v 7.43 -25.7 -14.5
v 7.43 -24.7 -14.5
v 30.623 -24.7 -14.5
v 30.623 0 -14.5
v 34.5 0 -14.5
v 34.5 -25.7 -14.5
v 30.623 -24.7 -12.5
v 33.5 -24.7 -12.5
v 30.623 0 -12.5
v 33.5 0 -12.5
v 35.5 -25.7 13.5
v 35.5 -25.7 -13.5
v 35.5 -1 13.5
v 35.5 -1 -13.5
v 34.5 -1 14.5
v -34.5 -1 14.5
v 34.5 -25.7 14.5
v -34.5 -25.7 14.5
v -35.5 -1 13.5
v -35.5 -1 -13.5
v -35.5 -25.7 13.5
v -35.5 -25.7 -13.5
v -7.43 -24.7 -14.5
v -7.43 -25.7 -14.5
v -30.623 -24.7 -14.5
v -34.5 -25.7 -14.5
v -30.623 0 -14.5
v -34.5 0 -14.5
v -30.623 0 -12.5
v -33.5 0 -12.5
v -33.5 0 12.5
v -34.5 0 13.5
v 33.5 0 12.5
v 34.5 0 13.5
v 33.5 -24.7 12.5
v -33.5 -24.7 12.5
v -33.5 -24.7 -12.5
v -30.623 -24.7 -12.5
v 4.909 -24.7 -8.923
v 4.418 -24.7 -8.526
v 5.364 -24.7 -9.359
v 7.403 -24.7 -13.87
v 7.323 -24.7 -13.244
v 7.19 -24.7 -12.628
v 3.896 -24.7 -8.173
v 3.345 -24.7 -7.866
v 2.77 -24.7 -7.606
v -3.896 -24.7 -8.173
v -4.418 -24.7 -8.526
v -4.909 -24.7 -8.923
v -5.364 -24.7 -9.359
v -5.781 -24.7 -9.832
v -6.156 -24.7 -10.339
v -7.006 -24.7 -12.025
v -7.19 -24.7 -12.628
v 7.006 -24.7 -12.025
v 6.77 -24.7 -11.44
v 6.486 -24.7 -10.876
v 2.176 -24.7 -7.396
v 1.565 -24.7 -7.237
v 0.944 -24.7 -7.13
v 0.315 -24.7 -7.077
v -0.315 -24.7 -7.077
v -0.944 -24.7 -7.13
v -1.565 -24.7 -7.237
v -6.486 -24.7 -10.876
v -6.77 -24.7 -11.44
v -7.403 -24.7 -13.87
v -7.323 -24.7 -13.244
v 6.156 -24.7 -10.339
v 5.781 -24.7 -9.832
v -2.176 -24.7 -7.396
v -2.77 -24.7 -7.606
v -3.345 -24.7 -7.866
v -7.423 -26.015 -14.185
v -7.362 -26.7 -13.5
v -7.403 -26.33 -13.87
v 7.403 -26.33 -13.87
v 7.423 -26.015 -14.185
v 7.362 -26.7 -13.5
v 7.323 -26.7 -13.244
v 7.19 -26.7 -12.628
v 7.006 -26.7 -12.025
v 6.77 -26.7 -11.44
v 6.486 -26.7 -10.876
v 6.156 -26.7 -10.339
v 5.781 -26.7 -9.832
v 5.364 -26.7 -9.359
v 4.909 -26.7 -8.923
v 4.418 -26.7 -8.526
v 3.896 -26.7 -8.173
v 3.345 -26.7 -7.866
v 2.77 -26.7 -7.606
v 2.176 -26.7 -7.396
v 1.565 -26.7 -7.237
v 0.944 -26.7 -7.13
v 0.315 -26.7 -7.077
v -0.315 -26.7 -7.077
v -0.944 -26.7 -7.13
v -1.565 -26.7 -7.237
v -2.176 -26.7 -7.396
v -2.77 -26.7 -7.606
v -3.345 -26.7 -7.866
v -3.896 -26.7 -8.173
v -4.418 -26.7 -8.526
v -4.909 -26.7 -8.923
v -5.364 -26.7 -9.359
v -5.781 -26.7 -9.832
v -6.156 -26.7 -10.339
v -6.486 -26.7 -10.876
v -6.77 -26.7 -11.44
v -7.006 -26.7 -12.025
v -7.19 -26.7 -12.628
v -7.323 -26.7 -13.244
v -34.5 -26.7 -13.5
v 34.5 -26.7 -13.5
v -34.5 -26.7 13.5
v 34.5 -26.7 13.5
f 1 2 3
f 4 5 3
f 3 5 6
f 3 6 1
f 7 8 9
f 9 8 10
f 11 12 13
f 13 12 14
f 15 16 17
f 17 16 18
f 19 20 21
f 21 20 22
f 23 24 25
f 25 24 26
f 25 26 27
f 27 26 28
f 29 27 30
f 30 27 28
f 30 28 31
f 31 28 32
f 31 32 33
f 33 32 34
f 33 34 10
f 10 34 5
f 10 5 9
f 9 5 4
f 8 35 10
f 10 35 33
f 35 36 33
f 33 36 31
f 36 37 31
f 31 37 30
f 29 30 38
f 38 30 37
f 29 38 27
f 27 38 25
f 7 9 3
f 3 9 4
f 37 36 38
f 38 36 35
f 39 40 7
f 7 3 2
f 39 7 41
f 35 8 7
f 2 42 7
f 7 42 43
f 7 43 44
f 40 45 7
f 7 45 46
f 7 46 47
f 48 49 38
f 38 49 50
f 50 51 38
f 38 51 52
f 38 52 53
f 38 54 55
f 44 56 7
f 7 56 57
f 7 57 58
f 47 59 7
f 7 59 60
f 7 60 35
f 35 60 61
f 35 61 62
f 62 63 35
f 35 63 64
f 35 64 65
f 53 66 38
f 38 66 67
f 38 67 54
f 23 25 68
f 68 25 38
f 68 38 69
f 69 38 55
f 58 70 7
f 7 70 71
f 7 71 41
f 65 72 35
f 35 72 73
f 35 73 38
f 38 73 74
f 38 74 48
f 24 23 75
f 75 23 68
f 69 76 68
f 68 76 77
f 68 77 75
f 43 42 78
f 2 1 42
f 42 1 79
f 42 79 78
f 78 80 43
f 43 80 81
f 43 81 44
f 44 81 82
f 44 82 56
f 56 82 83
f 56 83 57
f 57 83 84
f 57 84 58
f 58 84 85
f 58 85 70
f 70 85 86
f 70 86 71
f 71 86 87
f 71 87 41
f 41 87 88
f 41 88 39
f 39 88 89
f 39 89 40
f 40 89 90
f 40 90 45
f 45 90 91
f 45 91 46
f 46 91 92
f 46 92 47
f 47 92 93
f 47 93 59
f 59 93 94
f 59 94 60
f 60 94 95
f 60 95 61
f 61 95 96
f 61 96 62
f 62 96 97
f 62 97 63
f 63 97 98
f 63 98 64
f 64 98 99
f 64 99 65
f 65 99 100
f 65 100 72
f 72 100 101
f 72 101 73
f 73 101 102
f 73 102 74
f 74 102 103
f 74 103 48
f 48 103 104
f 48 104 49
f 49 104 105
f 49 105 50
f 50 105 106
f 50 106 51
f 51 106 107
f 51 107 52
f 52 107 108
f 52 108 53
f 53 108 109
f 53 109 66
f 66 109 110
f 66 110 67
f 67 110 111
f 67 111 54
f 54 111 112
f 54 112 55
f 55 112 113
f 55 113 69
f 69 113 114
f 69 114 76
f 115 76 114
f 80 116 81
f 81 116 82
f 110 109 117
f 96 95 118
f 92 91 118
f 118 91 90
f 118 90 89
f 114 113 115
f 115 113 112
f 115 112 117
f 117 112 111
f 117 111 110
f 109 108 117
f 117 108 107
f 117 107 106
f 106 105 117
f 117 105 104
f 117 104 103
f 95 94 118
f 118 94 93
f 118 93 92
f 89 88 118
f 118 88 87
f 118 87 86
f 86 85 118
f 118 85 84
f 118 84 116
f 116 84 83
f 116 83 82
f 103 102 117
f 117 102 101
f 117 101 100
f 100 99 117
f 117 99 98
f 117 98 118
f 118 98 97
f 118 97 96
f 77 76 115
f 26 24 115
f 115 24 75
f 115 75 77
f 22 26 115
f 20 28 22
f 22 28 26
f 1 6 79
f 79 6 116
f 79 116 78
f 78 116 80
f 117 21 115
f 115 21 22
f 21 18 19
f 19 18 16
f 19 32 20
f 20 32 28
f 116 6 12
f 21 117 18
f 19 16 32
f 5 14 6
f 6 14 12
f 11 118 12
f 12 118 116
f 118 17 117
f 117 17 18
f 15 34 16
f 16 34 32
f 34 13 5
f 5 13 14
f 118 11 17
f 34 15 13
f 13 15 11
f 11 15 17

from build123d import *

# Parameters (mm, degrees)
SKETCH1_W               = 71
SKETCH1_H               = 29
SKETCH1_W_2             = 67
SKETCH1_H_2             = 25
EXTRUDE_THIN1_DEPTH     = 24.7
CUT_EXTRUDE1_DEPTH      = 46.613484848
CUT_EXTRUDE1_DEPTH_BACK = 46.613484848
SKETCH2_W               = 61.246689818
SKETCH2_H               = 16.669960146
BOSS_EXTRUDE1_DEPTH     = 2
CHAMFER1_SIZE           = 1


with BuildPart() as part:
    # Sketch1 → Extrude-Thin1 (new body)
    with BuildSketch(Plane(origin=(0, 0, 0), x_dir=(1, 0, 0), z_dir=(0, 1, 0))):
        Rectangle(SKETCH1_W, SKETCH1_H)
        Rectangle(SKETCH1_W_2, SKETCH1_H_2, mode=Mode.SUBTRACT)
    extrude(amount=-EXTRUDE_THIN1_DEPTH)

    # Sketch2 → Cut-Extrude1 (cut, two sides: drawn at the far end of the back side and taken through both)
    with BuildSketch(Plane(origin=(0, 0, 0), x_dir=(1, 0, 0), z_dir=(0, 1, 0)).offset(-CUT_EXTRUDE1_DEPTH_BACK)):
        with Locations((0, 12.5)):
            Rectangle(SKETCH2_W, SKETCH2_H)
    extrude(amount=CUT_EXTRUDE1_DEPTH + CUT_EXTRUDE1_DEPTH_BACK, mode=Mode.SUBTRACT)

    # Sketch3 → Boss-Extrude1 (add)
    with BuildSketch(Plane.XZ.offset(24.7)):
        with BuildLine():
            Line((7.43, -14.5), (30.623344909, -14.5))
            Line((30.623344909, -14.5), (30.623344909, -12.5))
            Line((30.623344909, -12.5), (33.5, -12.5))
            Line((33.5, -12.5), (33.5, 12.5))
            Line((33.5, 12.5), (-33.5, 12.5))
            Line((-33.5, 12.5), (-33.5, -12.5))
            Line((-33.5, -12.5), (-30.623344909, -12.5))
            Line((-30.623344909, -12.5), (-30.623344909, -14.5))
            Line((-30.623344909, -14.5), (-7.43, -14.5))
            ThreePointArc((-7.43, -14.5), (0, -7.07), (7.43, -14.5))
        make_face()
        Polygon((33.5, 12.5), (33.5, -12.5), (30.623344909, -12.5), (30.623344909, -14.5), (35.5, -14.5), (35.5, 14.5), (-35.5, 14.5), (-35.5, -14.5), (-30.623344909, -14.5), (-30.623344909, -12.5), (-33.5, -12.5), (-33.5, 12.5), align=None)
    extrude(amount=BOSS_EXTRUDE1_DEPTH)

    # Chamfer1
    chamfer1_edges = [part.edges().sort_by_distance(p)[0] for p in [
        (0, 0, 14.5),
        (-35.5, 0, 0),
        (35.5, 0, 0),
        (21.465, -26.7, -14.5),
        (35.5, -26.7, 0),
        (0, -26.7, 14.5),
        (-35.5, -26.7, 0),
        (-21.465, -26.7, -14.5),
        (35.5, -13.35, 14.5),
        (-35.5, -13.35, 14.5),
        (-35.5, -13.35, -14.5),
        (35.5, -13.35, -14.5),
    ]]
    chamfer(chamfer1_edges, length=CHAMFER1_SIZE)


solid = part.part
